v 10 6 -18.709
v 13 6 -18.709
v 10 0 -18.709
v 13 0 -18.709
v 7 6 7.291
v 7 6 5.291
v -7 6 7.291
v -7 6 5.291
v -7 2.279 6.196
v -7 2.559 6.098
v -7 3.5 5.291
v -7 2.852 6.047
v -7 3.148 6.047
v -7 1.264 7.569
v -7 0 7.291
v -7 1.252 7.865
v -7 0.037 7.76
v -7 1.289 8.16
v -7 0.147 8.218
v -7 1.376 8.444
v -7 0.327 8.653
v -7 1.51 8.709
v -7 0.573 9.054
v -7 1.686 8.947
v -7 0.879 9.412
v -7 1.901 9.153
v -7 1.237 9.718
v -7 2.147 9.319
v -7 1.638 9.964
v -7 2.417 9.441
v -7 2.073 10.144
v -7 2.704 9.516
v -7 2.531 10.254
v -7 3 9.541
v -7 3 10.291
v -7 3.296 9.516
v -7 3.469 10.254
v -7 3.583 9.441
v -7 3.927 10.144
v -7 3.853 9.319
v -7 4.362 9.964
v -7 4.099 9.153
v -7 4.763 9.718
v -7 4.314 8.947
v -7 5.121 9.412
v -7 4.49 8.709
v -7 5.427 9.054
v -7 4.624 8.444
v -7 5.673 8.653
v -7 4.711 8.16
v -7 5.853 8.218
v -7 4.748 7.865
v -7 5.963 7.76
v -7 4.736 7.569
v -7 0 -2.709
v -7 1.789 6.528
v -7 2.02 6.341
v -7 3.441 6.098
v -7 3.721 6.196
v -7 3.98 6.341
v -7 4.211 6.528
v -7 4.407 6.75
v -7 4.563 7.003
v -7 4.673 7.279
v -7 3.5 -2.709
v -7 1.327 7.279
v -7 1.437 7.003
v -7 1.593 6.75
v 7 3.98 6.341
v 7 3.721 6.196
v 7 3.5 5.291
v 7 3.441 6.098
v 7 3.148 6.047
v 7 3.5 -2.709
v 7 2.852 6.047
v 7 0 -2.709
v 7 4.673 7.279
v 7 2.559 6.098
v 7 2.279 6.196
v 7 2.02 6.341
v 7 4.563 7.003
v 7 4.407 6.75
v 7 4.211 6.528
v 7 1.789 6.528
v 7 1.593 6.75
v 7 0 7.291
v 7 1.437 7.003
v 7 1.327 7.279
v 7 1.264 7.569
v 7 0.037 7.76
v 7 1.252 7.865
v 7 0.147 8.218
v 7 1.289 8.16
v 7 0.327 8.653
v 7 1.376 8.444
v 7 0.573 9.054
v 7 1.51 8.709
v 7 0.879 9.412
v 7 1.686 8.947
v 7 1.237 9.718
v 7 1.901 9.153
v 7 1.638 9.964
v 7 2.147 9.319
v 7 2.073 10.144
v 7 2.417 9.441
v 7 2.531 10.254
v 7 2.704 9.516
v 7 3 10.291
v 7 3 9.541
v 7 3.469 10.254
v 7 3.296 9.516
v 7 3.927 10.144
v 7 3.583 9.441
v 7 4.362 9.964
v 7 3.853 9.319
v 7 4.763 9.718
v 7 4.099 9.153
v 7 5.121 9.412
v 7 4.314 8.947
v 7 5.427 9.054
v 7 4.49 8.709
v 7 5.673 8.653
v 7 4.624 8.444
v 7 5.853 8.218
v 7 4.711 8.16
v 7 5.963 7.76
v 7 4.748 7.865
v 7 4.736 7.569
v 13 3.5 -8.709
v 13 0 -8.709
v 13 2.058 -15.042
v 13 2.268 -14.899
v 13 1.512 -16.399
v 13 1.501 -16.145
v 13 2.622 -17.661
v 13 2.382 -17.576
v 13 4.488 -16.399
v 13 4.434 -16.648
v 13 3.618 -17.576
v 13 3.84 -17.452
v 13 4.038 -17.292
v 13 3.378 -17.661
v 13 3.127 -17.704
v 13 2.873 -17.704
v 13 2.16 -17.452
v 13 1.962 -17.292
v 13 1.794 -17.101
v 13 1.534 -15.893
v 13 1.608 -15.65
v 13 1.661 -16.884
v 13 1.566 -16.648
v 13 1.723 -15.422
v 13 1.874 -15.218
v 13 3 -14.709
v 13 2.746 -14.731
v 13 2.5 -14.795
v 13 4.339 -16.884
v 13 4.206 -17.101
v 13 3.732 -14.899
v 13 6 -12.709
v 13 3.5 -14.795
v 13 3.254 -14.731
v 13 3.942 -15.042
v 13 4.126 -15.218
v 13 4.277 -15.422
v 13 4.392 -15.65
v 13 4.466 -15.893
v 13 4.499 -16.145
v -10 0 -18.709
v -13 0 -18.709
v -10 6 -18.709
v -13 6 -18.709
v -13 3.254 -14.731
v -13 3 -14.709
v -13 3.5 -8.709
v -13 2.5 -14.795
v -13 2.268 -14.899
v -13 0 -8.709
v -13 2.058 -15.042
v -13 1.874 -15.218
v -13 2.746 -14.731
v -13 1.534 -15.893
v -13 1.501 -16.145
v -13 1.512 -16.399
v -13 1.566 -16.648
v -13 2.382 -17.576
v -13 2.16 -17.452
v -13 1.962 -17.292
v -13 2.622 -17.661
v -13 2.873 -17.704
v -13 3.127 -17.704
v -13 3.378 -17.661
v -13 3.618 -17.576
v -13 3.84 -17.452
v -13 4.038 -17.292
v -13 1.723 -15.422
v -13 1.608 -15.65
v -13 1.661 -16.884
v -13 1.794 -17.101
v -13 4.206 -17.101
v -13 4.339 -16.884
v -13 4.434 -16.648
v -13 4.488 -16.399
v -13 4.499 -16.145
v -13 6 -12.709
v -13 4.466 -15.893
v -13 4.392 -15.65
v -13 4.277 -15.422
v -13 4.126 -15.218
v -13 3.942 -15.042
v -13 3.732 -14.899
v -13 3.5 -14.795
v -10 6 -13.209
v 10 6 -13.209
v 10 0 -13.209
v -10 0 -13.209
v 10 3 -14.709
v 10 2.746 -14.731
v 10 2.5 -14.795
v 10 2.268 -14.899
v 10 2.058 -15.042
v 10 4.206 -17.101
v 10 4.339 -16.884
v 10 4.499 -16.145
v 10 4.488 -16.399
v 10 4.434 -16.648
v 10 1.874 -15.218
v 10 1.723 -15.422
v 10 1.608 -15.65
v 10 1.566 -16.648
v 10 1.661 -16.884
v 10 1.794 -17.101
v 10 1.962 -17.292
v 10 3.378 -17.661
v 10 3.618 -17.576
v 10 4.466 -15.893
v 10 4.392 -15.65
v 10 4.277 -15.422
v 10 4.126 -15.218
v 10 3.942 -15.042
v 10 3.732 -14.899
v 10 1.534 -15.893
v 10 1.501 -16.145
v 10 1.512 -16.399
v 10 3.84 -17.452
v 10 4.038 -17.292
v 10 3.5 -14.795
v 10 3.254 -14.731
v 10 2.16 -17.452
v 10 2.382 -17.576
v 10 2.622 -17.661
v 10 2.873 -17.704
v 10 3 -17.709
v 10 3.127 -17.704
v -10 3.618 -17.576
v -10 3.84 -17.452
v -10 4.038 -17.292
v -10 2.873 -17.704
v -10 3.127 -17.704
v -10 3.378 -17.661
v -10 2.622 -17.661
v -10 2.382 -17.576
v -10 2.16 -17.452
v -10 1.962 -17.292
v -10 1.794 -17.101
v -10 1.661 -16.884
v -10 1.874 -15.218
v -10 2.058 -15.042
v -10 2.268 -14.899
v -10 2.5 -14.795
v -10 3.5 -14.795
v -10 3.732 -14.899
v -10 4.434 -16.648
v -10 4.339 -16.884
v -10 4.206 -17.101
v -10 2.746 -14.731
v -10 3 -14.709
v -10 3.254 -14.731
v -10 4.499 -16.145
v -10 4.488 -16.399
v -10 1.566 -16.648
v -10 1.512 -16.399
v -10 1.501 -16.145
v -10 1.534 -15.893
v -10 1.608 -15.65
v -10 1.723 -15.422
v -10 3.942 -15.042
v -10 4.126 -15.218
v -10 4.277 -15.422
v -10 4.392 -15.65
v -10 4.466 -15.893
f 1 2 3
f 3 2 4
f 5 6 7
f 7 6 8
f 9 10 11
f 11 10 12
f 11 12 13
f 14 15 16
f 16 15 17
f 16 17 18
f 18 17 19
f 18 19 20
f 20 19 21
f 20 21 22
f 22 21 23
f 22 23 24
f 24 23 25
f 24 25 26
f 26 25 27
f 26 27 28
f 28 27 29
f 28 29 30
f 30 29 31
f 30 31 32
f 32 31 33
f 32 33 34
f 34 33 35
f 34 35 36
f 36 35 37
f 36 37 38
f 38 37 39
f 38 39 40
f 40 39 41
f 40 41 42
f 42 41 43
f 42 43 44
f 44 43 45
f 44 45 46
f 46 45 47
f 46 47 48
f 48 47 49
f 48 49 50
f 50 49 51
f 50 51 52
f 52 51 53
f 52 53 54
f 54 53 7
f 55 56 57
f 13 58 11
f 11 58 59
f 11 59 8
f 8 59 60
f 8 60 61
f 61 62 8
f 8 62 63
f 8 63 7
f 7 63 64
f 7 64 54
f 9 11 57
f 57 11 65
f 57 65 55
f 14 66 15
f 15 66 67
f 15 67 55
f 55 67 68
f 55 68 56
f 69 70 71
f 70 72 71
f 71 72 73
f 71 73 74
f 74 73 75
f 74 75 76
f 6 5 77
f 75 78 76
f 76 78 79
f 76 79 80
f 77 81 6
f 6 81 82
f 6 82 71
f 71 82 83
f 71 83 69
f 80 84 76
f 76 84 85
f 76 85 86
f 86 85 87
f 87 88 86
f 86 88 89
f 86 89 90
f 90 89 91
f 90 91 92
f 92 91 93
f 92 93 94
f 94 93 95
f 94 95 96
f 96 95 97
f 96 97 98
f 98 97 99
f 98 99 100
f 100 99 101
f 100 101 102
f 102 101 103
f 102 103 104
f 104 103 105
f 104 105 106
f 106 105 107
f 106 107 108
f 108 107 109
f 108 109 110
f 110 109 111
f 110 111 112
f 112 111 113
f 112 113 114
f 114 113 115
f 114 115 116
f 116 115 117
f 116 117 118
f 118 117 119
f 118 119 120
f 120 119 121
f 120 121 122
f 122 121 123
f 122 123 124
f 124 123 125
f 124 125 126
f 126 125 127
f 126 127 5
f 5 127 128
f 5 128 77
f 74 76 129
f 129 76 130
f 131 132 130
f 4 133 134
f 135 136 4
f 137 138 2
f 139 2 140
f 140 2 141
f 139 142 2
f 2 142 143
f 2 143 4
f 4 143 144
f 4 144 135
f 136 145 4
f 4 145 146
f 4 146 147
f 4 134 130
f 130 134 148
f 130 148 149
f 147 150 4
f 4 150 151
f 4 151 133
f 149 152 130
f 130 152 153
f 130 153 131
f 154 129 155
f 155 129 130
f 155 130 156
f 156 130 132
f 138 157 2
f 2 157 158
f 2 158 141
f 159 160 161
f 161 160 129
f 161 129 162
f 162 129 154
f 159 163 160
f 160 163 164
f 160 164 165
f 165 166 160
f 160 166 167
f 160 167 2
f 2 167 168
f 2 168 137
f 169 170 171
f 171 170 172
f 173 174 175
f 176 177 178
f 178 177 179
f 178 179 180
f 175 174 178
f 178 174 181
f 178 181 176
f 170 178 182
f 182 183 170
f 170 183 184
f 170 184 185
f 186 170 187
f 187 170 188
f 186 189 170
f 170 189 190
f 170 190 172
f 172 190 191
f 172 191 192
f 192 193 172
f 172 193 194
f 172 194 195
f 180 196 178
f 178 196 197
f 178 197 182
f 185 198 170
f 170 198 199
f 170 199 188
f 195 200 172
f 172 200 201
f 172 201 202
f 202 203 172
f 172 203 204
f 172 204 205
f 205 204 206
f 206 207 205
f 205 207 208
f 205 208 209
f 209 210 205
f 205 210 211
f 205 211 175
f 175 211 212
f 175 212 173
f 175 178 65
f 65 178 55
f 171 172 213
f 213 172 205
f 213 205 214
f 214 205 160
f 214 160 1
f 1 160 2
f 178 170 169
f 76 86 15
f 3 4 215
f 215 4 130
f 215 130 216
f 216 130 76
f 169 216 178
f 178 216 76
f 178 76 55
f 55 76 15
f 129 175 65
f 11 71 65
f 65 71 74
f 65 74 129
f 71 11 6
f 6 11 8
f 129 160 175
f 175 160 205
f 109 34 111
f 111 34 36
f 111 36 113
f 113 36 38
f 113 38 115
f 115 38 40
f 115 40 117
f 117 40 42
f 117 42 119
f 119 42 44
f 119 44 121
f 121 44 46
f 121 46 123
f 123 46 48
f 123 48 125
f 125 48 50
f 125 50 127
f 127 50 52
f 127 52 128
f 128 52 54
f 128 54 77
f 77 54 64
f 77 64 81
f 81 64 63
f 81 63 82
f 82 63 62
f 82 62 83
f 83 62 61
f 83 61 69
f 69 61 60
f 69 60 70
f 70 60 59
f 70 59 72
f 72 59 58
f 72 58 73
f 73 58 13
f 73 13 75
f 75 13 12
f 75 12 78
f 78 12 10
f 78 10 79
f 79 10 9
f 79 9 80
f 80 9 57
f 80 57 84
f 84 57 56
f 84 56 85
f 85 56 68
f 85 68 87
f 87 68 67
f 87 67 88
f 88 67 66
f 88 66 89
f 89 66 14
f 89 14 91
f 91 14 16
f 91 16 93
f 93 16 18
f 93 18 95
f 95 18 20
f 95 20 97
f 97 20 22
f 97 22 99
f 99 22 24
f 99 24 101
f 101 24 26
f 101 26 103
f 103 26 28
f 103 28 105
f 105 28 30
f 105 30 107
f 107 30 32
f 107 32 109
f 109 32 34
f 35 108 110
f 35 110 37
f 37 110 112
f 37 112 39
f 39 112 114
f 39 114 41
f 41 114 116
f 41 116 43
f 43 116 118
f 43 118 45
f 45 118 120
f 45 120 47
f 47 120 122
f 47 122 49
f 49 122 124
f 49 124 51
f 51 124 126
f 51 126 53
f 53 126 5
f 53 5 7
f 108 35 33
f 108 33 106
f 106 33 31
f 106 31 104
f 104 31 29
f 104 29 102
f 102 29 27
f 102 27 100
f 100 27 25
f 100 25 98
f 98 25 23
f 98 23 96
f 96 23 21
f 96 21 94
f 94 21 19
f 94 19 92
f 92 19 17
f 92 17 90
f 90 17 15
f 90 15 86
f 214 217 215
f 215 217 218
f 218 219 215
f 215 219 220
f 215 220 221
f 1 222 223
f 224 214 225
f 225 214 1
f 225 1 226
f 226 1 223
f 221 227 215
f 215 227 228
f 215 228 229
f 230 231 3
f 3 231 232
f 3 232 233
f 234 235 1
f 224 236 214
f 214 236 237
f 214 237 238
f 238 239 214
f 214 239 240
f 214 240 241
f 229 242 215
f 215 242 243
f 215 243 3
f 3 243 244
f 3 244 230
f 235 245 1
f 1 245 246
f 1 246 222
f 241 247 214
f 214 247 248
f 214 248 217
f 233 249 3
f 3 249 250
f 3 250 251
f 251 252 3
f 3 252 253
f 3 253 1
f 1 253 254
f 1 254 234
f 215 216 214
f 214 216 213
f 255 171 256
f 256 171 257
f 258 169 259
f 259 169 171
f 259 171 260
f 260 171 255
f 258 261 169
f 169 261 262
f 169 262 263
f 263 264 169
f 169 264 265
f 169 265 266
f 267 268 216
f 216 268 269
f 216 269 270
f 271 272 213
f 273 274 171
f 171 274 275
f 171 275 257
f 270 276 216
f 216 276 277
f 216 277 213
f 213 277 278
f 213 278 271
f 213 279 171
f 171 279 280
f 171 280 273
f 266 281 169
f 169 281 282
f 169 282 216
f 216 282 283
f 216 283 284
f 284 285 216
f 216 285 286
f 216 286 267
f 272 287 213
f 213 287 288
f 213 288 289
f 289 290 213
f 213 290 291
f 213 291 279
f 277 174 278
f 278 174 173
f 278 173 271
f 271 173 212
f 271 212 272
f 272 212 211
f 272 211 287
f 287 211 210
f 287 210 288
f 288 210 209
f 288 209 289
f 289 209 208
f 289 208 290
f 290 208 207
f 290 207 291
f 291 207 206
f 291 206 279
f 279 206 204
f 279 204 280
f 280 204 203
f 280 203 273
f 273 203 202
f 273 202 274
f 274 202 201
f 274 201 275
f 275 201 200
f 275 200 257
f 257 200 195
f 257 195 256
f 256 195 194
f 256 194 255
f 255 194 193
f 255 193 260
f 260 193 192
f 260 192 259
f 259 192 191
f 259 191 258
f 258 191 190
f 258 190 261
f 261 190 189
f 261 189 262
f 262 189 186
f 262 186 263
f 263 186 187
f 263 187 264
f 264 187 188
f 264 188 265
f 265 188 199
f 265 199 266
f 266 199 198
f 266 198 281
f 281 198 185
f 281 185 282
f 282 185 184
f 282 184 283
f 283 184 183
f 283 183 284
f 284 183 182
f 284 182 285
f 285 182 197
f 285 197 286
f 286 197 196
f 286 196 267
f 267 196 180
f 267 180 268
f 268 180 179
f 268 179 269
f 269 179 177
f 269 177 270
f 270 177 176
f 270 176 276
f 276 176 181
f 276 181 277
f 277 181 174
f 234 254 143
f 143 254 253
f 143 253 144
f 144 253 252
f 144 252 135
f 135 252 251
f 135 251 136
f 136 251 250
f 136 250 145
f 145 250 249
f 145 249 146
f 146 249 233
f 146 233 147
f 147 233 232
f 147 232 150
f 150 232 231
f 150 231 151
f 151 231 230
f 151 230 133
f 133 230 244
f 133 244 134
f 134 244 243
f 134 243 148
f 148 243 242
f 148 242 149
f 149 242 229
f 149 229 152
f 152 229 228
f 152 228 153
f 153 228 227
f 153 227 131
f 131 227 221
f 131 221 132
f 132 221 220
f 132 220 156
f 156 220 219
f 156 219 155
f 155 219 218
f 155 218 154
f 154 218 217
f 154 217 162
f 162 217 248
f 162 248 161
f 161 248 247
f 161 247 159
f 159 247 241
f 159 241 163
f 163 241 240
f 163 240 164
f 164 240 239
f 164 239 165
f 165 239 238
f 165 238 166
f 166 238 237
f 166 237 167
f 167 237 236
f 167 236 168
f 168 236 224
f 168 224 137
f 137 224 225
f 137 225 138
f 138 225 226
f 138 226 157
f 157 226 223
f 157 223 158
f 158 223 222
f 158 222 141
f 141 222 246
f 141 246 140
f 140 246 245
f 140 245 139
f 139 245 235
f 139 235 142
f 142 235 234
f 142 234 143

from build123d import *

# Parameters (mm, degrees)
RESSALTO_EXTRUS_O1_DEPTH = 6
CORTE_EXTRUS_O1_DEPTH    = 33.58872513
ESBO_O5_R                = 1.75
CORTE_EXTRUS_O2_DEPTH    = 29.036137494
FILETE1_R                = 3
ESBO_O6_W                = 20
ESBO_O6_H                = 5.5
CORTE_EXTRUS_O3_DEPTH    = 24.558968686
ESBO_O7_R                = 1.5
CORTE_EXTRUS_O4_DEPTH    = 33.58872513


with BuildPart() as part:
    # Esboço1 → Ressalto-extrusão1 (new body)
    with BuildSketch(Plane(origin=(0, 0, 0), x_dir=(1, 0, 0), z_dir=(0, 1, 0))):
        Polygon((7, -10.291044776), (-7, -10.291044776), (-7, 2.708955224), (-13, 8.708955224), (-13, 18.708955224), (13, 18.708955224), (13, 8.708955224), (7, 2.708955224), align=None)
    extrude(amount=RESSALTO_EXTRUS_O1_DEPTH)

    # Esboço4 → Corte-extrusão1 (cut, through all)
    with BuildSketch(Plane.ZY.offset(13)):
        Polygon((-12.708955224, 6), (-8.708955224, 3.5), (5.291044776, 3.5), (5.291044776, 13.308893529), (-12.708955224, 13.308893529), align=None)
    extrude(amount=-CORTE_EXTRUS_O1_DEPTH, mode=Mode.SUBTRACT)

    # Esboço5 → Corte-extrusão2 (cut, through all)
    with BuildSketch(Plane.ZY.offset(7)):
        with Locations((7.791044776, 3)):
            Circle(ESBO_O5_R)
    extrude(amount=-CORTE_EXTRUS_O2_DEPTH, mode=Mode.SUBTRACT)

    # Filete1
    filete1_edges = [part.edges().sort_by_distance(p)[0] for p in [
        (0, 0, 10.291044776),
        (0, 6, 10.291044776),
    ]]
    fillet(filete1_edges, radius=FILETE1_R - 0.0001)  # a hair under: the kernel refuses the full size

    # Esboço6 → Corte-extrusão3 (cut, through all)
    with BuildSketch(Plane(origin=(0, 6, 0), x_dir=(1, 0, 0), z_dir=(0, 1, 0))):
        with Locations((0, 15.958955224)):
            Rectangle(ESBO_O6_W, ESBO_O6_H)
    extrude(amount=-CORTE_EXTRUS_O3_DEPTH, mode=Mode.SUBTRACT)

    # Esboço7 → Corte-extrusão4 (cut, through all)
    with BuildSketch(Plane.ZY.offset(13)):
        with Locations((-16.208955224, 3)):
            Circle(ESBO_O7_R)
    extrude(amount=-CORTE_EXTRUS_O4_DEPTH, mode=Mode.SUBTRACT)


solid = part.part
